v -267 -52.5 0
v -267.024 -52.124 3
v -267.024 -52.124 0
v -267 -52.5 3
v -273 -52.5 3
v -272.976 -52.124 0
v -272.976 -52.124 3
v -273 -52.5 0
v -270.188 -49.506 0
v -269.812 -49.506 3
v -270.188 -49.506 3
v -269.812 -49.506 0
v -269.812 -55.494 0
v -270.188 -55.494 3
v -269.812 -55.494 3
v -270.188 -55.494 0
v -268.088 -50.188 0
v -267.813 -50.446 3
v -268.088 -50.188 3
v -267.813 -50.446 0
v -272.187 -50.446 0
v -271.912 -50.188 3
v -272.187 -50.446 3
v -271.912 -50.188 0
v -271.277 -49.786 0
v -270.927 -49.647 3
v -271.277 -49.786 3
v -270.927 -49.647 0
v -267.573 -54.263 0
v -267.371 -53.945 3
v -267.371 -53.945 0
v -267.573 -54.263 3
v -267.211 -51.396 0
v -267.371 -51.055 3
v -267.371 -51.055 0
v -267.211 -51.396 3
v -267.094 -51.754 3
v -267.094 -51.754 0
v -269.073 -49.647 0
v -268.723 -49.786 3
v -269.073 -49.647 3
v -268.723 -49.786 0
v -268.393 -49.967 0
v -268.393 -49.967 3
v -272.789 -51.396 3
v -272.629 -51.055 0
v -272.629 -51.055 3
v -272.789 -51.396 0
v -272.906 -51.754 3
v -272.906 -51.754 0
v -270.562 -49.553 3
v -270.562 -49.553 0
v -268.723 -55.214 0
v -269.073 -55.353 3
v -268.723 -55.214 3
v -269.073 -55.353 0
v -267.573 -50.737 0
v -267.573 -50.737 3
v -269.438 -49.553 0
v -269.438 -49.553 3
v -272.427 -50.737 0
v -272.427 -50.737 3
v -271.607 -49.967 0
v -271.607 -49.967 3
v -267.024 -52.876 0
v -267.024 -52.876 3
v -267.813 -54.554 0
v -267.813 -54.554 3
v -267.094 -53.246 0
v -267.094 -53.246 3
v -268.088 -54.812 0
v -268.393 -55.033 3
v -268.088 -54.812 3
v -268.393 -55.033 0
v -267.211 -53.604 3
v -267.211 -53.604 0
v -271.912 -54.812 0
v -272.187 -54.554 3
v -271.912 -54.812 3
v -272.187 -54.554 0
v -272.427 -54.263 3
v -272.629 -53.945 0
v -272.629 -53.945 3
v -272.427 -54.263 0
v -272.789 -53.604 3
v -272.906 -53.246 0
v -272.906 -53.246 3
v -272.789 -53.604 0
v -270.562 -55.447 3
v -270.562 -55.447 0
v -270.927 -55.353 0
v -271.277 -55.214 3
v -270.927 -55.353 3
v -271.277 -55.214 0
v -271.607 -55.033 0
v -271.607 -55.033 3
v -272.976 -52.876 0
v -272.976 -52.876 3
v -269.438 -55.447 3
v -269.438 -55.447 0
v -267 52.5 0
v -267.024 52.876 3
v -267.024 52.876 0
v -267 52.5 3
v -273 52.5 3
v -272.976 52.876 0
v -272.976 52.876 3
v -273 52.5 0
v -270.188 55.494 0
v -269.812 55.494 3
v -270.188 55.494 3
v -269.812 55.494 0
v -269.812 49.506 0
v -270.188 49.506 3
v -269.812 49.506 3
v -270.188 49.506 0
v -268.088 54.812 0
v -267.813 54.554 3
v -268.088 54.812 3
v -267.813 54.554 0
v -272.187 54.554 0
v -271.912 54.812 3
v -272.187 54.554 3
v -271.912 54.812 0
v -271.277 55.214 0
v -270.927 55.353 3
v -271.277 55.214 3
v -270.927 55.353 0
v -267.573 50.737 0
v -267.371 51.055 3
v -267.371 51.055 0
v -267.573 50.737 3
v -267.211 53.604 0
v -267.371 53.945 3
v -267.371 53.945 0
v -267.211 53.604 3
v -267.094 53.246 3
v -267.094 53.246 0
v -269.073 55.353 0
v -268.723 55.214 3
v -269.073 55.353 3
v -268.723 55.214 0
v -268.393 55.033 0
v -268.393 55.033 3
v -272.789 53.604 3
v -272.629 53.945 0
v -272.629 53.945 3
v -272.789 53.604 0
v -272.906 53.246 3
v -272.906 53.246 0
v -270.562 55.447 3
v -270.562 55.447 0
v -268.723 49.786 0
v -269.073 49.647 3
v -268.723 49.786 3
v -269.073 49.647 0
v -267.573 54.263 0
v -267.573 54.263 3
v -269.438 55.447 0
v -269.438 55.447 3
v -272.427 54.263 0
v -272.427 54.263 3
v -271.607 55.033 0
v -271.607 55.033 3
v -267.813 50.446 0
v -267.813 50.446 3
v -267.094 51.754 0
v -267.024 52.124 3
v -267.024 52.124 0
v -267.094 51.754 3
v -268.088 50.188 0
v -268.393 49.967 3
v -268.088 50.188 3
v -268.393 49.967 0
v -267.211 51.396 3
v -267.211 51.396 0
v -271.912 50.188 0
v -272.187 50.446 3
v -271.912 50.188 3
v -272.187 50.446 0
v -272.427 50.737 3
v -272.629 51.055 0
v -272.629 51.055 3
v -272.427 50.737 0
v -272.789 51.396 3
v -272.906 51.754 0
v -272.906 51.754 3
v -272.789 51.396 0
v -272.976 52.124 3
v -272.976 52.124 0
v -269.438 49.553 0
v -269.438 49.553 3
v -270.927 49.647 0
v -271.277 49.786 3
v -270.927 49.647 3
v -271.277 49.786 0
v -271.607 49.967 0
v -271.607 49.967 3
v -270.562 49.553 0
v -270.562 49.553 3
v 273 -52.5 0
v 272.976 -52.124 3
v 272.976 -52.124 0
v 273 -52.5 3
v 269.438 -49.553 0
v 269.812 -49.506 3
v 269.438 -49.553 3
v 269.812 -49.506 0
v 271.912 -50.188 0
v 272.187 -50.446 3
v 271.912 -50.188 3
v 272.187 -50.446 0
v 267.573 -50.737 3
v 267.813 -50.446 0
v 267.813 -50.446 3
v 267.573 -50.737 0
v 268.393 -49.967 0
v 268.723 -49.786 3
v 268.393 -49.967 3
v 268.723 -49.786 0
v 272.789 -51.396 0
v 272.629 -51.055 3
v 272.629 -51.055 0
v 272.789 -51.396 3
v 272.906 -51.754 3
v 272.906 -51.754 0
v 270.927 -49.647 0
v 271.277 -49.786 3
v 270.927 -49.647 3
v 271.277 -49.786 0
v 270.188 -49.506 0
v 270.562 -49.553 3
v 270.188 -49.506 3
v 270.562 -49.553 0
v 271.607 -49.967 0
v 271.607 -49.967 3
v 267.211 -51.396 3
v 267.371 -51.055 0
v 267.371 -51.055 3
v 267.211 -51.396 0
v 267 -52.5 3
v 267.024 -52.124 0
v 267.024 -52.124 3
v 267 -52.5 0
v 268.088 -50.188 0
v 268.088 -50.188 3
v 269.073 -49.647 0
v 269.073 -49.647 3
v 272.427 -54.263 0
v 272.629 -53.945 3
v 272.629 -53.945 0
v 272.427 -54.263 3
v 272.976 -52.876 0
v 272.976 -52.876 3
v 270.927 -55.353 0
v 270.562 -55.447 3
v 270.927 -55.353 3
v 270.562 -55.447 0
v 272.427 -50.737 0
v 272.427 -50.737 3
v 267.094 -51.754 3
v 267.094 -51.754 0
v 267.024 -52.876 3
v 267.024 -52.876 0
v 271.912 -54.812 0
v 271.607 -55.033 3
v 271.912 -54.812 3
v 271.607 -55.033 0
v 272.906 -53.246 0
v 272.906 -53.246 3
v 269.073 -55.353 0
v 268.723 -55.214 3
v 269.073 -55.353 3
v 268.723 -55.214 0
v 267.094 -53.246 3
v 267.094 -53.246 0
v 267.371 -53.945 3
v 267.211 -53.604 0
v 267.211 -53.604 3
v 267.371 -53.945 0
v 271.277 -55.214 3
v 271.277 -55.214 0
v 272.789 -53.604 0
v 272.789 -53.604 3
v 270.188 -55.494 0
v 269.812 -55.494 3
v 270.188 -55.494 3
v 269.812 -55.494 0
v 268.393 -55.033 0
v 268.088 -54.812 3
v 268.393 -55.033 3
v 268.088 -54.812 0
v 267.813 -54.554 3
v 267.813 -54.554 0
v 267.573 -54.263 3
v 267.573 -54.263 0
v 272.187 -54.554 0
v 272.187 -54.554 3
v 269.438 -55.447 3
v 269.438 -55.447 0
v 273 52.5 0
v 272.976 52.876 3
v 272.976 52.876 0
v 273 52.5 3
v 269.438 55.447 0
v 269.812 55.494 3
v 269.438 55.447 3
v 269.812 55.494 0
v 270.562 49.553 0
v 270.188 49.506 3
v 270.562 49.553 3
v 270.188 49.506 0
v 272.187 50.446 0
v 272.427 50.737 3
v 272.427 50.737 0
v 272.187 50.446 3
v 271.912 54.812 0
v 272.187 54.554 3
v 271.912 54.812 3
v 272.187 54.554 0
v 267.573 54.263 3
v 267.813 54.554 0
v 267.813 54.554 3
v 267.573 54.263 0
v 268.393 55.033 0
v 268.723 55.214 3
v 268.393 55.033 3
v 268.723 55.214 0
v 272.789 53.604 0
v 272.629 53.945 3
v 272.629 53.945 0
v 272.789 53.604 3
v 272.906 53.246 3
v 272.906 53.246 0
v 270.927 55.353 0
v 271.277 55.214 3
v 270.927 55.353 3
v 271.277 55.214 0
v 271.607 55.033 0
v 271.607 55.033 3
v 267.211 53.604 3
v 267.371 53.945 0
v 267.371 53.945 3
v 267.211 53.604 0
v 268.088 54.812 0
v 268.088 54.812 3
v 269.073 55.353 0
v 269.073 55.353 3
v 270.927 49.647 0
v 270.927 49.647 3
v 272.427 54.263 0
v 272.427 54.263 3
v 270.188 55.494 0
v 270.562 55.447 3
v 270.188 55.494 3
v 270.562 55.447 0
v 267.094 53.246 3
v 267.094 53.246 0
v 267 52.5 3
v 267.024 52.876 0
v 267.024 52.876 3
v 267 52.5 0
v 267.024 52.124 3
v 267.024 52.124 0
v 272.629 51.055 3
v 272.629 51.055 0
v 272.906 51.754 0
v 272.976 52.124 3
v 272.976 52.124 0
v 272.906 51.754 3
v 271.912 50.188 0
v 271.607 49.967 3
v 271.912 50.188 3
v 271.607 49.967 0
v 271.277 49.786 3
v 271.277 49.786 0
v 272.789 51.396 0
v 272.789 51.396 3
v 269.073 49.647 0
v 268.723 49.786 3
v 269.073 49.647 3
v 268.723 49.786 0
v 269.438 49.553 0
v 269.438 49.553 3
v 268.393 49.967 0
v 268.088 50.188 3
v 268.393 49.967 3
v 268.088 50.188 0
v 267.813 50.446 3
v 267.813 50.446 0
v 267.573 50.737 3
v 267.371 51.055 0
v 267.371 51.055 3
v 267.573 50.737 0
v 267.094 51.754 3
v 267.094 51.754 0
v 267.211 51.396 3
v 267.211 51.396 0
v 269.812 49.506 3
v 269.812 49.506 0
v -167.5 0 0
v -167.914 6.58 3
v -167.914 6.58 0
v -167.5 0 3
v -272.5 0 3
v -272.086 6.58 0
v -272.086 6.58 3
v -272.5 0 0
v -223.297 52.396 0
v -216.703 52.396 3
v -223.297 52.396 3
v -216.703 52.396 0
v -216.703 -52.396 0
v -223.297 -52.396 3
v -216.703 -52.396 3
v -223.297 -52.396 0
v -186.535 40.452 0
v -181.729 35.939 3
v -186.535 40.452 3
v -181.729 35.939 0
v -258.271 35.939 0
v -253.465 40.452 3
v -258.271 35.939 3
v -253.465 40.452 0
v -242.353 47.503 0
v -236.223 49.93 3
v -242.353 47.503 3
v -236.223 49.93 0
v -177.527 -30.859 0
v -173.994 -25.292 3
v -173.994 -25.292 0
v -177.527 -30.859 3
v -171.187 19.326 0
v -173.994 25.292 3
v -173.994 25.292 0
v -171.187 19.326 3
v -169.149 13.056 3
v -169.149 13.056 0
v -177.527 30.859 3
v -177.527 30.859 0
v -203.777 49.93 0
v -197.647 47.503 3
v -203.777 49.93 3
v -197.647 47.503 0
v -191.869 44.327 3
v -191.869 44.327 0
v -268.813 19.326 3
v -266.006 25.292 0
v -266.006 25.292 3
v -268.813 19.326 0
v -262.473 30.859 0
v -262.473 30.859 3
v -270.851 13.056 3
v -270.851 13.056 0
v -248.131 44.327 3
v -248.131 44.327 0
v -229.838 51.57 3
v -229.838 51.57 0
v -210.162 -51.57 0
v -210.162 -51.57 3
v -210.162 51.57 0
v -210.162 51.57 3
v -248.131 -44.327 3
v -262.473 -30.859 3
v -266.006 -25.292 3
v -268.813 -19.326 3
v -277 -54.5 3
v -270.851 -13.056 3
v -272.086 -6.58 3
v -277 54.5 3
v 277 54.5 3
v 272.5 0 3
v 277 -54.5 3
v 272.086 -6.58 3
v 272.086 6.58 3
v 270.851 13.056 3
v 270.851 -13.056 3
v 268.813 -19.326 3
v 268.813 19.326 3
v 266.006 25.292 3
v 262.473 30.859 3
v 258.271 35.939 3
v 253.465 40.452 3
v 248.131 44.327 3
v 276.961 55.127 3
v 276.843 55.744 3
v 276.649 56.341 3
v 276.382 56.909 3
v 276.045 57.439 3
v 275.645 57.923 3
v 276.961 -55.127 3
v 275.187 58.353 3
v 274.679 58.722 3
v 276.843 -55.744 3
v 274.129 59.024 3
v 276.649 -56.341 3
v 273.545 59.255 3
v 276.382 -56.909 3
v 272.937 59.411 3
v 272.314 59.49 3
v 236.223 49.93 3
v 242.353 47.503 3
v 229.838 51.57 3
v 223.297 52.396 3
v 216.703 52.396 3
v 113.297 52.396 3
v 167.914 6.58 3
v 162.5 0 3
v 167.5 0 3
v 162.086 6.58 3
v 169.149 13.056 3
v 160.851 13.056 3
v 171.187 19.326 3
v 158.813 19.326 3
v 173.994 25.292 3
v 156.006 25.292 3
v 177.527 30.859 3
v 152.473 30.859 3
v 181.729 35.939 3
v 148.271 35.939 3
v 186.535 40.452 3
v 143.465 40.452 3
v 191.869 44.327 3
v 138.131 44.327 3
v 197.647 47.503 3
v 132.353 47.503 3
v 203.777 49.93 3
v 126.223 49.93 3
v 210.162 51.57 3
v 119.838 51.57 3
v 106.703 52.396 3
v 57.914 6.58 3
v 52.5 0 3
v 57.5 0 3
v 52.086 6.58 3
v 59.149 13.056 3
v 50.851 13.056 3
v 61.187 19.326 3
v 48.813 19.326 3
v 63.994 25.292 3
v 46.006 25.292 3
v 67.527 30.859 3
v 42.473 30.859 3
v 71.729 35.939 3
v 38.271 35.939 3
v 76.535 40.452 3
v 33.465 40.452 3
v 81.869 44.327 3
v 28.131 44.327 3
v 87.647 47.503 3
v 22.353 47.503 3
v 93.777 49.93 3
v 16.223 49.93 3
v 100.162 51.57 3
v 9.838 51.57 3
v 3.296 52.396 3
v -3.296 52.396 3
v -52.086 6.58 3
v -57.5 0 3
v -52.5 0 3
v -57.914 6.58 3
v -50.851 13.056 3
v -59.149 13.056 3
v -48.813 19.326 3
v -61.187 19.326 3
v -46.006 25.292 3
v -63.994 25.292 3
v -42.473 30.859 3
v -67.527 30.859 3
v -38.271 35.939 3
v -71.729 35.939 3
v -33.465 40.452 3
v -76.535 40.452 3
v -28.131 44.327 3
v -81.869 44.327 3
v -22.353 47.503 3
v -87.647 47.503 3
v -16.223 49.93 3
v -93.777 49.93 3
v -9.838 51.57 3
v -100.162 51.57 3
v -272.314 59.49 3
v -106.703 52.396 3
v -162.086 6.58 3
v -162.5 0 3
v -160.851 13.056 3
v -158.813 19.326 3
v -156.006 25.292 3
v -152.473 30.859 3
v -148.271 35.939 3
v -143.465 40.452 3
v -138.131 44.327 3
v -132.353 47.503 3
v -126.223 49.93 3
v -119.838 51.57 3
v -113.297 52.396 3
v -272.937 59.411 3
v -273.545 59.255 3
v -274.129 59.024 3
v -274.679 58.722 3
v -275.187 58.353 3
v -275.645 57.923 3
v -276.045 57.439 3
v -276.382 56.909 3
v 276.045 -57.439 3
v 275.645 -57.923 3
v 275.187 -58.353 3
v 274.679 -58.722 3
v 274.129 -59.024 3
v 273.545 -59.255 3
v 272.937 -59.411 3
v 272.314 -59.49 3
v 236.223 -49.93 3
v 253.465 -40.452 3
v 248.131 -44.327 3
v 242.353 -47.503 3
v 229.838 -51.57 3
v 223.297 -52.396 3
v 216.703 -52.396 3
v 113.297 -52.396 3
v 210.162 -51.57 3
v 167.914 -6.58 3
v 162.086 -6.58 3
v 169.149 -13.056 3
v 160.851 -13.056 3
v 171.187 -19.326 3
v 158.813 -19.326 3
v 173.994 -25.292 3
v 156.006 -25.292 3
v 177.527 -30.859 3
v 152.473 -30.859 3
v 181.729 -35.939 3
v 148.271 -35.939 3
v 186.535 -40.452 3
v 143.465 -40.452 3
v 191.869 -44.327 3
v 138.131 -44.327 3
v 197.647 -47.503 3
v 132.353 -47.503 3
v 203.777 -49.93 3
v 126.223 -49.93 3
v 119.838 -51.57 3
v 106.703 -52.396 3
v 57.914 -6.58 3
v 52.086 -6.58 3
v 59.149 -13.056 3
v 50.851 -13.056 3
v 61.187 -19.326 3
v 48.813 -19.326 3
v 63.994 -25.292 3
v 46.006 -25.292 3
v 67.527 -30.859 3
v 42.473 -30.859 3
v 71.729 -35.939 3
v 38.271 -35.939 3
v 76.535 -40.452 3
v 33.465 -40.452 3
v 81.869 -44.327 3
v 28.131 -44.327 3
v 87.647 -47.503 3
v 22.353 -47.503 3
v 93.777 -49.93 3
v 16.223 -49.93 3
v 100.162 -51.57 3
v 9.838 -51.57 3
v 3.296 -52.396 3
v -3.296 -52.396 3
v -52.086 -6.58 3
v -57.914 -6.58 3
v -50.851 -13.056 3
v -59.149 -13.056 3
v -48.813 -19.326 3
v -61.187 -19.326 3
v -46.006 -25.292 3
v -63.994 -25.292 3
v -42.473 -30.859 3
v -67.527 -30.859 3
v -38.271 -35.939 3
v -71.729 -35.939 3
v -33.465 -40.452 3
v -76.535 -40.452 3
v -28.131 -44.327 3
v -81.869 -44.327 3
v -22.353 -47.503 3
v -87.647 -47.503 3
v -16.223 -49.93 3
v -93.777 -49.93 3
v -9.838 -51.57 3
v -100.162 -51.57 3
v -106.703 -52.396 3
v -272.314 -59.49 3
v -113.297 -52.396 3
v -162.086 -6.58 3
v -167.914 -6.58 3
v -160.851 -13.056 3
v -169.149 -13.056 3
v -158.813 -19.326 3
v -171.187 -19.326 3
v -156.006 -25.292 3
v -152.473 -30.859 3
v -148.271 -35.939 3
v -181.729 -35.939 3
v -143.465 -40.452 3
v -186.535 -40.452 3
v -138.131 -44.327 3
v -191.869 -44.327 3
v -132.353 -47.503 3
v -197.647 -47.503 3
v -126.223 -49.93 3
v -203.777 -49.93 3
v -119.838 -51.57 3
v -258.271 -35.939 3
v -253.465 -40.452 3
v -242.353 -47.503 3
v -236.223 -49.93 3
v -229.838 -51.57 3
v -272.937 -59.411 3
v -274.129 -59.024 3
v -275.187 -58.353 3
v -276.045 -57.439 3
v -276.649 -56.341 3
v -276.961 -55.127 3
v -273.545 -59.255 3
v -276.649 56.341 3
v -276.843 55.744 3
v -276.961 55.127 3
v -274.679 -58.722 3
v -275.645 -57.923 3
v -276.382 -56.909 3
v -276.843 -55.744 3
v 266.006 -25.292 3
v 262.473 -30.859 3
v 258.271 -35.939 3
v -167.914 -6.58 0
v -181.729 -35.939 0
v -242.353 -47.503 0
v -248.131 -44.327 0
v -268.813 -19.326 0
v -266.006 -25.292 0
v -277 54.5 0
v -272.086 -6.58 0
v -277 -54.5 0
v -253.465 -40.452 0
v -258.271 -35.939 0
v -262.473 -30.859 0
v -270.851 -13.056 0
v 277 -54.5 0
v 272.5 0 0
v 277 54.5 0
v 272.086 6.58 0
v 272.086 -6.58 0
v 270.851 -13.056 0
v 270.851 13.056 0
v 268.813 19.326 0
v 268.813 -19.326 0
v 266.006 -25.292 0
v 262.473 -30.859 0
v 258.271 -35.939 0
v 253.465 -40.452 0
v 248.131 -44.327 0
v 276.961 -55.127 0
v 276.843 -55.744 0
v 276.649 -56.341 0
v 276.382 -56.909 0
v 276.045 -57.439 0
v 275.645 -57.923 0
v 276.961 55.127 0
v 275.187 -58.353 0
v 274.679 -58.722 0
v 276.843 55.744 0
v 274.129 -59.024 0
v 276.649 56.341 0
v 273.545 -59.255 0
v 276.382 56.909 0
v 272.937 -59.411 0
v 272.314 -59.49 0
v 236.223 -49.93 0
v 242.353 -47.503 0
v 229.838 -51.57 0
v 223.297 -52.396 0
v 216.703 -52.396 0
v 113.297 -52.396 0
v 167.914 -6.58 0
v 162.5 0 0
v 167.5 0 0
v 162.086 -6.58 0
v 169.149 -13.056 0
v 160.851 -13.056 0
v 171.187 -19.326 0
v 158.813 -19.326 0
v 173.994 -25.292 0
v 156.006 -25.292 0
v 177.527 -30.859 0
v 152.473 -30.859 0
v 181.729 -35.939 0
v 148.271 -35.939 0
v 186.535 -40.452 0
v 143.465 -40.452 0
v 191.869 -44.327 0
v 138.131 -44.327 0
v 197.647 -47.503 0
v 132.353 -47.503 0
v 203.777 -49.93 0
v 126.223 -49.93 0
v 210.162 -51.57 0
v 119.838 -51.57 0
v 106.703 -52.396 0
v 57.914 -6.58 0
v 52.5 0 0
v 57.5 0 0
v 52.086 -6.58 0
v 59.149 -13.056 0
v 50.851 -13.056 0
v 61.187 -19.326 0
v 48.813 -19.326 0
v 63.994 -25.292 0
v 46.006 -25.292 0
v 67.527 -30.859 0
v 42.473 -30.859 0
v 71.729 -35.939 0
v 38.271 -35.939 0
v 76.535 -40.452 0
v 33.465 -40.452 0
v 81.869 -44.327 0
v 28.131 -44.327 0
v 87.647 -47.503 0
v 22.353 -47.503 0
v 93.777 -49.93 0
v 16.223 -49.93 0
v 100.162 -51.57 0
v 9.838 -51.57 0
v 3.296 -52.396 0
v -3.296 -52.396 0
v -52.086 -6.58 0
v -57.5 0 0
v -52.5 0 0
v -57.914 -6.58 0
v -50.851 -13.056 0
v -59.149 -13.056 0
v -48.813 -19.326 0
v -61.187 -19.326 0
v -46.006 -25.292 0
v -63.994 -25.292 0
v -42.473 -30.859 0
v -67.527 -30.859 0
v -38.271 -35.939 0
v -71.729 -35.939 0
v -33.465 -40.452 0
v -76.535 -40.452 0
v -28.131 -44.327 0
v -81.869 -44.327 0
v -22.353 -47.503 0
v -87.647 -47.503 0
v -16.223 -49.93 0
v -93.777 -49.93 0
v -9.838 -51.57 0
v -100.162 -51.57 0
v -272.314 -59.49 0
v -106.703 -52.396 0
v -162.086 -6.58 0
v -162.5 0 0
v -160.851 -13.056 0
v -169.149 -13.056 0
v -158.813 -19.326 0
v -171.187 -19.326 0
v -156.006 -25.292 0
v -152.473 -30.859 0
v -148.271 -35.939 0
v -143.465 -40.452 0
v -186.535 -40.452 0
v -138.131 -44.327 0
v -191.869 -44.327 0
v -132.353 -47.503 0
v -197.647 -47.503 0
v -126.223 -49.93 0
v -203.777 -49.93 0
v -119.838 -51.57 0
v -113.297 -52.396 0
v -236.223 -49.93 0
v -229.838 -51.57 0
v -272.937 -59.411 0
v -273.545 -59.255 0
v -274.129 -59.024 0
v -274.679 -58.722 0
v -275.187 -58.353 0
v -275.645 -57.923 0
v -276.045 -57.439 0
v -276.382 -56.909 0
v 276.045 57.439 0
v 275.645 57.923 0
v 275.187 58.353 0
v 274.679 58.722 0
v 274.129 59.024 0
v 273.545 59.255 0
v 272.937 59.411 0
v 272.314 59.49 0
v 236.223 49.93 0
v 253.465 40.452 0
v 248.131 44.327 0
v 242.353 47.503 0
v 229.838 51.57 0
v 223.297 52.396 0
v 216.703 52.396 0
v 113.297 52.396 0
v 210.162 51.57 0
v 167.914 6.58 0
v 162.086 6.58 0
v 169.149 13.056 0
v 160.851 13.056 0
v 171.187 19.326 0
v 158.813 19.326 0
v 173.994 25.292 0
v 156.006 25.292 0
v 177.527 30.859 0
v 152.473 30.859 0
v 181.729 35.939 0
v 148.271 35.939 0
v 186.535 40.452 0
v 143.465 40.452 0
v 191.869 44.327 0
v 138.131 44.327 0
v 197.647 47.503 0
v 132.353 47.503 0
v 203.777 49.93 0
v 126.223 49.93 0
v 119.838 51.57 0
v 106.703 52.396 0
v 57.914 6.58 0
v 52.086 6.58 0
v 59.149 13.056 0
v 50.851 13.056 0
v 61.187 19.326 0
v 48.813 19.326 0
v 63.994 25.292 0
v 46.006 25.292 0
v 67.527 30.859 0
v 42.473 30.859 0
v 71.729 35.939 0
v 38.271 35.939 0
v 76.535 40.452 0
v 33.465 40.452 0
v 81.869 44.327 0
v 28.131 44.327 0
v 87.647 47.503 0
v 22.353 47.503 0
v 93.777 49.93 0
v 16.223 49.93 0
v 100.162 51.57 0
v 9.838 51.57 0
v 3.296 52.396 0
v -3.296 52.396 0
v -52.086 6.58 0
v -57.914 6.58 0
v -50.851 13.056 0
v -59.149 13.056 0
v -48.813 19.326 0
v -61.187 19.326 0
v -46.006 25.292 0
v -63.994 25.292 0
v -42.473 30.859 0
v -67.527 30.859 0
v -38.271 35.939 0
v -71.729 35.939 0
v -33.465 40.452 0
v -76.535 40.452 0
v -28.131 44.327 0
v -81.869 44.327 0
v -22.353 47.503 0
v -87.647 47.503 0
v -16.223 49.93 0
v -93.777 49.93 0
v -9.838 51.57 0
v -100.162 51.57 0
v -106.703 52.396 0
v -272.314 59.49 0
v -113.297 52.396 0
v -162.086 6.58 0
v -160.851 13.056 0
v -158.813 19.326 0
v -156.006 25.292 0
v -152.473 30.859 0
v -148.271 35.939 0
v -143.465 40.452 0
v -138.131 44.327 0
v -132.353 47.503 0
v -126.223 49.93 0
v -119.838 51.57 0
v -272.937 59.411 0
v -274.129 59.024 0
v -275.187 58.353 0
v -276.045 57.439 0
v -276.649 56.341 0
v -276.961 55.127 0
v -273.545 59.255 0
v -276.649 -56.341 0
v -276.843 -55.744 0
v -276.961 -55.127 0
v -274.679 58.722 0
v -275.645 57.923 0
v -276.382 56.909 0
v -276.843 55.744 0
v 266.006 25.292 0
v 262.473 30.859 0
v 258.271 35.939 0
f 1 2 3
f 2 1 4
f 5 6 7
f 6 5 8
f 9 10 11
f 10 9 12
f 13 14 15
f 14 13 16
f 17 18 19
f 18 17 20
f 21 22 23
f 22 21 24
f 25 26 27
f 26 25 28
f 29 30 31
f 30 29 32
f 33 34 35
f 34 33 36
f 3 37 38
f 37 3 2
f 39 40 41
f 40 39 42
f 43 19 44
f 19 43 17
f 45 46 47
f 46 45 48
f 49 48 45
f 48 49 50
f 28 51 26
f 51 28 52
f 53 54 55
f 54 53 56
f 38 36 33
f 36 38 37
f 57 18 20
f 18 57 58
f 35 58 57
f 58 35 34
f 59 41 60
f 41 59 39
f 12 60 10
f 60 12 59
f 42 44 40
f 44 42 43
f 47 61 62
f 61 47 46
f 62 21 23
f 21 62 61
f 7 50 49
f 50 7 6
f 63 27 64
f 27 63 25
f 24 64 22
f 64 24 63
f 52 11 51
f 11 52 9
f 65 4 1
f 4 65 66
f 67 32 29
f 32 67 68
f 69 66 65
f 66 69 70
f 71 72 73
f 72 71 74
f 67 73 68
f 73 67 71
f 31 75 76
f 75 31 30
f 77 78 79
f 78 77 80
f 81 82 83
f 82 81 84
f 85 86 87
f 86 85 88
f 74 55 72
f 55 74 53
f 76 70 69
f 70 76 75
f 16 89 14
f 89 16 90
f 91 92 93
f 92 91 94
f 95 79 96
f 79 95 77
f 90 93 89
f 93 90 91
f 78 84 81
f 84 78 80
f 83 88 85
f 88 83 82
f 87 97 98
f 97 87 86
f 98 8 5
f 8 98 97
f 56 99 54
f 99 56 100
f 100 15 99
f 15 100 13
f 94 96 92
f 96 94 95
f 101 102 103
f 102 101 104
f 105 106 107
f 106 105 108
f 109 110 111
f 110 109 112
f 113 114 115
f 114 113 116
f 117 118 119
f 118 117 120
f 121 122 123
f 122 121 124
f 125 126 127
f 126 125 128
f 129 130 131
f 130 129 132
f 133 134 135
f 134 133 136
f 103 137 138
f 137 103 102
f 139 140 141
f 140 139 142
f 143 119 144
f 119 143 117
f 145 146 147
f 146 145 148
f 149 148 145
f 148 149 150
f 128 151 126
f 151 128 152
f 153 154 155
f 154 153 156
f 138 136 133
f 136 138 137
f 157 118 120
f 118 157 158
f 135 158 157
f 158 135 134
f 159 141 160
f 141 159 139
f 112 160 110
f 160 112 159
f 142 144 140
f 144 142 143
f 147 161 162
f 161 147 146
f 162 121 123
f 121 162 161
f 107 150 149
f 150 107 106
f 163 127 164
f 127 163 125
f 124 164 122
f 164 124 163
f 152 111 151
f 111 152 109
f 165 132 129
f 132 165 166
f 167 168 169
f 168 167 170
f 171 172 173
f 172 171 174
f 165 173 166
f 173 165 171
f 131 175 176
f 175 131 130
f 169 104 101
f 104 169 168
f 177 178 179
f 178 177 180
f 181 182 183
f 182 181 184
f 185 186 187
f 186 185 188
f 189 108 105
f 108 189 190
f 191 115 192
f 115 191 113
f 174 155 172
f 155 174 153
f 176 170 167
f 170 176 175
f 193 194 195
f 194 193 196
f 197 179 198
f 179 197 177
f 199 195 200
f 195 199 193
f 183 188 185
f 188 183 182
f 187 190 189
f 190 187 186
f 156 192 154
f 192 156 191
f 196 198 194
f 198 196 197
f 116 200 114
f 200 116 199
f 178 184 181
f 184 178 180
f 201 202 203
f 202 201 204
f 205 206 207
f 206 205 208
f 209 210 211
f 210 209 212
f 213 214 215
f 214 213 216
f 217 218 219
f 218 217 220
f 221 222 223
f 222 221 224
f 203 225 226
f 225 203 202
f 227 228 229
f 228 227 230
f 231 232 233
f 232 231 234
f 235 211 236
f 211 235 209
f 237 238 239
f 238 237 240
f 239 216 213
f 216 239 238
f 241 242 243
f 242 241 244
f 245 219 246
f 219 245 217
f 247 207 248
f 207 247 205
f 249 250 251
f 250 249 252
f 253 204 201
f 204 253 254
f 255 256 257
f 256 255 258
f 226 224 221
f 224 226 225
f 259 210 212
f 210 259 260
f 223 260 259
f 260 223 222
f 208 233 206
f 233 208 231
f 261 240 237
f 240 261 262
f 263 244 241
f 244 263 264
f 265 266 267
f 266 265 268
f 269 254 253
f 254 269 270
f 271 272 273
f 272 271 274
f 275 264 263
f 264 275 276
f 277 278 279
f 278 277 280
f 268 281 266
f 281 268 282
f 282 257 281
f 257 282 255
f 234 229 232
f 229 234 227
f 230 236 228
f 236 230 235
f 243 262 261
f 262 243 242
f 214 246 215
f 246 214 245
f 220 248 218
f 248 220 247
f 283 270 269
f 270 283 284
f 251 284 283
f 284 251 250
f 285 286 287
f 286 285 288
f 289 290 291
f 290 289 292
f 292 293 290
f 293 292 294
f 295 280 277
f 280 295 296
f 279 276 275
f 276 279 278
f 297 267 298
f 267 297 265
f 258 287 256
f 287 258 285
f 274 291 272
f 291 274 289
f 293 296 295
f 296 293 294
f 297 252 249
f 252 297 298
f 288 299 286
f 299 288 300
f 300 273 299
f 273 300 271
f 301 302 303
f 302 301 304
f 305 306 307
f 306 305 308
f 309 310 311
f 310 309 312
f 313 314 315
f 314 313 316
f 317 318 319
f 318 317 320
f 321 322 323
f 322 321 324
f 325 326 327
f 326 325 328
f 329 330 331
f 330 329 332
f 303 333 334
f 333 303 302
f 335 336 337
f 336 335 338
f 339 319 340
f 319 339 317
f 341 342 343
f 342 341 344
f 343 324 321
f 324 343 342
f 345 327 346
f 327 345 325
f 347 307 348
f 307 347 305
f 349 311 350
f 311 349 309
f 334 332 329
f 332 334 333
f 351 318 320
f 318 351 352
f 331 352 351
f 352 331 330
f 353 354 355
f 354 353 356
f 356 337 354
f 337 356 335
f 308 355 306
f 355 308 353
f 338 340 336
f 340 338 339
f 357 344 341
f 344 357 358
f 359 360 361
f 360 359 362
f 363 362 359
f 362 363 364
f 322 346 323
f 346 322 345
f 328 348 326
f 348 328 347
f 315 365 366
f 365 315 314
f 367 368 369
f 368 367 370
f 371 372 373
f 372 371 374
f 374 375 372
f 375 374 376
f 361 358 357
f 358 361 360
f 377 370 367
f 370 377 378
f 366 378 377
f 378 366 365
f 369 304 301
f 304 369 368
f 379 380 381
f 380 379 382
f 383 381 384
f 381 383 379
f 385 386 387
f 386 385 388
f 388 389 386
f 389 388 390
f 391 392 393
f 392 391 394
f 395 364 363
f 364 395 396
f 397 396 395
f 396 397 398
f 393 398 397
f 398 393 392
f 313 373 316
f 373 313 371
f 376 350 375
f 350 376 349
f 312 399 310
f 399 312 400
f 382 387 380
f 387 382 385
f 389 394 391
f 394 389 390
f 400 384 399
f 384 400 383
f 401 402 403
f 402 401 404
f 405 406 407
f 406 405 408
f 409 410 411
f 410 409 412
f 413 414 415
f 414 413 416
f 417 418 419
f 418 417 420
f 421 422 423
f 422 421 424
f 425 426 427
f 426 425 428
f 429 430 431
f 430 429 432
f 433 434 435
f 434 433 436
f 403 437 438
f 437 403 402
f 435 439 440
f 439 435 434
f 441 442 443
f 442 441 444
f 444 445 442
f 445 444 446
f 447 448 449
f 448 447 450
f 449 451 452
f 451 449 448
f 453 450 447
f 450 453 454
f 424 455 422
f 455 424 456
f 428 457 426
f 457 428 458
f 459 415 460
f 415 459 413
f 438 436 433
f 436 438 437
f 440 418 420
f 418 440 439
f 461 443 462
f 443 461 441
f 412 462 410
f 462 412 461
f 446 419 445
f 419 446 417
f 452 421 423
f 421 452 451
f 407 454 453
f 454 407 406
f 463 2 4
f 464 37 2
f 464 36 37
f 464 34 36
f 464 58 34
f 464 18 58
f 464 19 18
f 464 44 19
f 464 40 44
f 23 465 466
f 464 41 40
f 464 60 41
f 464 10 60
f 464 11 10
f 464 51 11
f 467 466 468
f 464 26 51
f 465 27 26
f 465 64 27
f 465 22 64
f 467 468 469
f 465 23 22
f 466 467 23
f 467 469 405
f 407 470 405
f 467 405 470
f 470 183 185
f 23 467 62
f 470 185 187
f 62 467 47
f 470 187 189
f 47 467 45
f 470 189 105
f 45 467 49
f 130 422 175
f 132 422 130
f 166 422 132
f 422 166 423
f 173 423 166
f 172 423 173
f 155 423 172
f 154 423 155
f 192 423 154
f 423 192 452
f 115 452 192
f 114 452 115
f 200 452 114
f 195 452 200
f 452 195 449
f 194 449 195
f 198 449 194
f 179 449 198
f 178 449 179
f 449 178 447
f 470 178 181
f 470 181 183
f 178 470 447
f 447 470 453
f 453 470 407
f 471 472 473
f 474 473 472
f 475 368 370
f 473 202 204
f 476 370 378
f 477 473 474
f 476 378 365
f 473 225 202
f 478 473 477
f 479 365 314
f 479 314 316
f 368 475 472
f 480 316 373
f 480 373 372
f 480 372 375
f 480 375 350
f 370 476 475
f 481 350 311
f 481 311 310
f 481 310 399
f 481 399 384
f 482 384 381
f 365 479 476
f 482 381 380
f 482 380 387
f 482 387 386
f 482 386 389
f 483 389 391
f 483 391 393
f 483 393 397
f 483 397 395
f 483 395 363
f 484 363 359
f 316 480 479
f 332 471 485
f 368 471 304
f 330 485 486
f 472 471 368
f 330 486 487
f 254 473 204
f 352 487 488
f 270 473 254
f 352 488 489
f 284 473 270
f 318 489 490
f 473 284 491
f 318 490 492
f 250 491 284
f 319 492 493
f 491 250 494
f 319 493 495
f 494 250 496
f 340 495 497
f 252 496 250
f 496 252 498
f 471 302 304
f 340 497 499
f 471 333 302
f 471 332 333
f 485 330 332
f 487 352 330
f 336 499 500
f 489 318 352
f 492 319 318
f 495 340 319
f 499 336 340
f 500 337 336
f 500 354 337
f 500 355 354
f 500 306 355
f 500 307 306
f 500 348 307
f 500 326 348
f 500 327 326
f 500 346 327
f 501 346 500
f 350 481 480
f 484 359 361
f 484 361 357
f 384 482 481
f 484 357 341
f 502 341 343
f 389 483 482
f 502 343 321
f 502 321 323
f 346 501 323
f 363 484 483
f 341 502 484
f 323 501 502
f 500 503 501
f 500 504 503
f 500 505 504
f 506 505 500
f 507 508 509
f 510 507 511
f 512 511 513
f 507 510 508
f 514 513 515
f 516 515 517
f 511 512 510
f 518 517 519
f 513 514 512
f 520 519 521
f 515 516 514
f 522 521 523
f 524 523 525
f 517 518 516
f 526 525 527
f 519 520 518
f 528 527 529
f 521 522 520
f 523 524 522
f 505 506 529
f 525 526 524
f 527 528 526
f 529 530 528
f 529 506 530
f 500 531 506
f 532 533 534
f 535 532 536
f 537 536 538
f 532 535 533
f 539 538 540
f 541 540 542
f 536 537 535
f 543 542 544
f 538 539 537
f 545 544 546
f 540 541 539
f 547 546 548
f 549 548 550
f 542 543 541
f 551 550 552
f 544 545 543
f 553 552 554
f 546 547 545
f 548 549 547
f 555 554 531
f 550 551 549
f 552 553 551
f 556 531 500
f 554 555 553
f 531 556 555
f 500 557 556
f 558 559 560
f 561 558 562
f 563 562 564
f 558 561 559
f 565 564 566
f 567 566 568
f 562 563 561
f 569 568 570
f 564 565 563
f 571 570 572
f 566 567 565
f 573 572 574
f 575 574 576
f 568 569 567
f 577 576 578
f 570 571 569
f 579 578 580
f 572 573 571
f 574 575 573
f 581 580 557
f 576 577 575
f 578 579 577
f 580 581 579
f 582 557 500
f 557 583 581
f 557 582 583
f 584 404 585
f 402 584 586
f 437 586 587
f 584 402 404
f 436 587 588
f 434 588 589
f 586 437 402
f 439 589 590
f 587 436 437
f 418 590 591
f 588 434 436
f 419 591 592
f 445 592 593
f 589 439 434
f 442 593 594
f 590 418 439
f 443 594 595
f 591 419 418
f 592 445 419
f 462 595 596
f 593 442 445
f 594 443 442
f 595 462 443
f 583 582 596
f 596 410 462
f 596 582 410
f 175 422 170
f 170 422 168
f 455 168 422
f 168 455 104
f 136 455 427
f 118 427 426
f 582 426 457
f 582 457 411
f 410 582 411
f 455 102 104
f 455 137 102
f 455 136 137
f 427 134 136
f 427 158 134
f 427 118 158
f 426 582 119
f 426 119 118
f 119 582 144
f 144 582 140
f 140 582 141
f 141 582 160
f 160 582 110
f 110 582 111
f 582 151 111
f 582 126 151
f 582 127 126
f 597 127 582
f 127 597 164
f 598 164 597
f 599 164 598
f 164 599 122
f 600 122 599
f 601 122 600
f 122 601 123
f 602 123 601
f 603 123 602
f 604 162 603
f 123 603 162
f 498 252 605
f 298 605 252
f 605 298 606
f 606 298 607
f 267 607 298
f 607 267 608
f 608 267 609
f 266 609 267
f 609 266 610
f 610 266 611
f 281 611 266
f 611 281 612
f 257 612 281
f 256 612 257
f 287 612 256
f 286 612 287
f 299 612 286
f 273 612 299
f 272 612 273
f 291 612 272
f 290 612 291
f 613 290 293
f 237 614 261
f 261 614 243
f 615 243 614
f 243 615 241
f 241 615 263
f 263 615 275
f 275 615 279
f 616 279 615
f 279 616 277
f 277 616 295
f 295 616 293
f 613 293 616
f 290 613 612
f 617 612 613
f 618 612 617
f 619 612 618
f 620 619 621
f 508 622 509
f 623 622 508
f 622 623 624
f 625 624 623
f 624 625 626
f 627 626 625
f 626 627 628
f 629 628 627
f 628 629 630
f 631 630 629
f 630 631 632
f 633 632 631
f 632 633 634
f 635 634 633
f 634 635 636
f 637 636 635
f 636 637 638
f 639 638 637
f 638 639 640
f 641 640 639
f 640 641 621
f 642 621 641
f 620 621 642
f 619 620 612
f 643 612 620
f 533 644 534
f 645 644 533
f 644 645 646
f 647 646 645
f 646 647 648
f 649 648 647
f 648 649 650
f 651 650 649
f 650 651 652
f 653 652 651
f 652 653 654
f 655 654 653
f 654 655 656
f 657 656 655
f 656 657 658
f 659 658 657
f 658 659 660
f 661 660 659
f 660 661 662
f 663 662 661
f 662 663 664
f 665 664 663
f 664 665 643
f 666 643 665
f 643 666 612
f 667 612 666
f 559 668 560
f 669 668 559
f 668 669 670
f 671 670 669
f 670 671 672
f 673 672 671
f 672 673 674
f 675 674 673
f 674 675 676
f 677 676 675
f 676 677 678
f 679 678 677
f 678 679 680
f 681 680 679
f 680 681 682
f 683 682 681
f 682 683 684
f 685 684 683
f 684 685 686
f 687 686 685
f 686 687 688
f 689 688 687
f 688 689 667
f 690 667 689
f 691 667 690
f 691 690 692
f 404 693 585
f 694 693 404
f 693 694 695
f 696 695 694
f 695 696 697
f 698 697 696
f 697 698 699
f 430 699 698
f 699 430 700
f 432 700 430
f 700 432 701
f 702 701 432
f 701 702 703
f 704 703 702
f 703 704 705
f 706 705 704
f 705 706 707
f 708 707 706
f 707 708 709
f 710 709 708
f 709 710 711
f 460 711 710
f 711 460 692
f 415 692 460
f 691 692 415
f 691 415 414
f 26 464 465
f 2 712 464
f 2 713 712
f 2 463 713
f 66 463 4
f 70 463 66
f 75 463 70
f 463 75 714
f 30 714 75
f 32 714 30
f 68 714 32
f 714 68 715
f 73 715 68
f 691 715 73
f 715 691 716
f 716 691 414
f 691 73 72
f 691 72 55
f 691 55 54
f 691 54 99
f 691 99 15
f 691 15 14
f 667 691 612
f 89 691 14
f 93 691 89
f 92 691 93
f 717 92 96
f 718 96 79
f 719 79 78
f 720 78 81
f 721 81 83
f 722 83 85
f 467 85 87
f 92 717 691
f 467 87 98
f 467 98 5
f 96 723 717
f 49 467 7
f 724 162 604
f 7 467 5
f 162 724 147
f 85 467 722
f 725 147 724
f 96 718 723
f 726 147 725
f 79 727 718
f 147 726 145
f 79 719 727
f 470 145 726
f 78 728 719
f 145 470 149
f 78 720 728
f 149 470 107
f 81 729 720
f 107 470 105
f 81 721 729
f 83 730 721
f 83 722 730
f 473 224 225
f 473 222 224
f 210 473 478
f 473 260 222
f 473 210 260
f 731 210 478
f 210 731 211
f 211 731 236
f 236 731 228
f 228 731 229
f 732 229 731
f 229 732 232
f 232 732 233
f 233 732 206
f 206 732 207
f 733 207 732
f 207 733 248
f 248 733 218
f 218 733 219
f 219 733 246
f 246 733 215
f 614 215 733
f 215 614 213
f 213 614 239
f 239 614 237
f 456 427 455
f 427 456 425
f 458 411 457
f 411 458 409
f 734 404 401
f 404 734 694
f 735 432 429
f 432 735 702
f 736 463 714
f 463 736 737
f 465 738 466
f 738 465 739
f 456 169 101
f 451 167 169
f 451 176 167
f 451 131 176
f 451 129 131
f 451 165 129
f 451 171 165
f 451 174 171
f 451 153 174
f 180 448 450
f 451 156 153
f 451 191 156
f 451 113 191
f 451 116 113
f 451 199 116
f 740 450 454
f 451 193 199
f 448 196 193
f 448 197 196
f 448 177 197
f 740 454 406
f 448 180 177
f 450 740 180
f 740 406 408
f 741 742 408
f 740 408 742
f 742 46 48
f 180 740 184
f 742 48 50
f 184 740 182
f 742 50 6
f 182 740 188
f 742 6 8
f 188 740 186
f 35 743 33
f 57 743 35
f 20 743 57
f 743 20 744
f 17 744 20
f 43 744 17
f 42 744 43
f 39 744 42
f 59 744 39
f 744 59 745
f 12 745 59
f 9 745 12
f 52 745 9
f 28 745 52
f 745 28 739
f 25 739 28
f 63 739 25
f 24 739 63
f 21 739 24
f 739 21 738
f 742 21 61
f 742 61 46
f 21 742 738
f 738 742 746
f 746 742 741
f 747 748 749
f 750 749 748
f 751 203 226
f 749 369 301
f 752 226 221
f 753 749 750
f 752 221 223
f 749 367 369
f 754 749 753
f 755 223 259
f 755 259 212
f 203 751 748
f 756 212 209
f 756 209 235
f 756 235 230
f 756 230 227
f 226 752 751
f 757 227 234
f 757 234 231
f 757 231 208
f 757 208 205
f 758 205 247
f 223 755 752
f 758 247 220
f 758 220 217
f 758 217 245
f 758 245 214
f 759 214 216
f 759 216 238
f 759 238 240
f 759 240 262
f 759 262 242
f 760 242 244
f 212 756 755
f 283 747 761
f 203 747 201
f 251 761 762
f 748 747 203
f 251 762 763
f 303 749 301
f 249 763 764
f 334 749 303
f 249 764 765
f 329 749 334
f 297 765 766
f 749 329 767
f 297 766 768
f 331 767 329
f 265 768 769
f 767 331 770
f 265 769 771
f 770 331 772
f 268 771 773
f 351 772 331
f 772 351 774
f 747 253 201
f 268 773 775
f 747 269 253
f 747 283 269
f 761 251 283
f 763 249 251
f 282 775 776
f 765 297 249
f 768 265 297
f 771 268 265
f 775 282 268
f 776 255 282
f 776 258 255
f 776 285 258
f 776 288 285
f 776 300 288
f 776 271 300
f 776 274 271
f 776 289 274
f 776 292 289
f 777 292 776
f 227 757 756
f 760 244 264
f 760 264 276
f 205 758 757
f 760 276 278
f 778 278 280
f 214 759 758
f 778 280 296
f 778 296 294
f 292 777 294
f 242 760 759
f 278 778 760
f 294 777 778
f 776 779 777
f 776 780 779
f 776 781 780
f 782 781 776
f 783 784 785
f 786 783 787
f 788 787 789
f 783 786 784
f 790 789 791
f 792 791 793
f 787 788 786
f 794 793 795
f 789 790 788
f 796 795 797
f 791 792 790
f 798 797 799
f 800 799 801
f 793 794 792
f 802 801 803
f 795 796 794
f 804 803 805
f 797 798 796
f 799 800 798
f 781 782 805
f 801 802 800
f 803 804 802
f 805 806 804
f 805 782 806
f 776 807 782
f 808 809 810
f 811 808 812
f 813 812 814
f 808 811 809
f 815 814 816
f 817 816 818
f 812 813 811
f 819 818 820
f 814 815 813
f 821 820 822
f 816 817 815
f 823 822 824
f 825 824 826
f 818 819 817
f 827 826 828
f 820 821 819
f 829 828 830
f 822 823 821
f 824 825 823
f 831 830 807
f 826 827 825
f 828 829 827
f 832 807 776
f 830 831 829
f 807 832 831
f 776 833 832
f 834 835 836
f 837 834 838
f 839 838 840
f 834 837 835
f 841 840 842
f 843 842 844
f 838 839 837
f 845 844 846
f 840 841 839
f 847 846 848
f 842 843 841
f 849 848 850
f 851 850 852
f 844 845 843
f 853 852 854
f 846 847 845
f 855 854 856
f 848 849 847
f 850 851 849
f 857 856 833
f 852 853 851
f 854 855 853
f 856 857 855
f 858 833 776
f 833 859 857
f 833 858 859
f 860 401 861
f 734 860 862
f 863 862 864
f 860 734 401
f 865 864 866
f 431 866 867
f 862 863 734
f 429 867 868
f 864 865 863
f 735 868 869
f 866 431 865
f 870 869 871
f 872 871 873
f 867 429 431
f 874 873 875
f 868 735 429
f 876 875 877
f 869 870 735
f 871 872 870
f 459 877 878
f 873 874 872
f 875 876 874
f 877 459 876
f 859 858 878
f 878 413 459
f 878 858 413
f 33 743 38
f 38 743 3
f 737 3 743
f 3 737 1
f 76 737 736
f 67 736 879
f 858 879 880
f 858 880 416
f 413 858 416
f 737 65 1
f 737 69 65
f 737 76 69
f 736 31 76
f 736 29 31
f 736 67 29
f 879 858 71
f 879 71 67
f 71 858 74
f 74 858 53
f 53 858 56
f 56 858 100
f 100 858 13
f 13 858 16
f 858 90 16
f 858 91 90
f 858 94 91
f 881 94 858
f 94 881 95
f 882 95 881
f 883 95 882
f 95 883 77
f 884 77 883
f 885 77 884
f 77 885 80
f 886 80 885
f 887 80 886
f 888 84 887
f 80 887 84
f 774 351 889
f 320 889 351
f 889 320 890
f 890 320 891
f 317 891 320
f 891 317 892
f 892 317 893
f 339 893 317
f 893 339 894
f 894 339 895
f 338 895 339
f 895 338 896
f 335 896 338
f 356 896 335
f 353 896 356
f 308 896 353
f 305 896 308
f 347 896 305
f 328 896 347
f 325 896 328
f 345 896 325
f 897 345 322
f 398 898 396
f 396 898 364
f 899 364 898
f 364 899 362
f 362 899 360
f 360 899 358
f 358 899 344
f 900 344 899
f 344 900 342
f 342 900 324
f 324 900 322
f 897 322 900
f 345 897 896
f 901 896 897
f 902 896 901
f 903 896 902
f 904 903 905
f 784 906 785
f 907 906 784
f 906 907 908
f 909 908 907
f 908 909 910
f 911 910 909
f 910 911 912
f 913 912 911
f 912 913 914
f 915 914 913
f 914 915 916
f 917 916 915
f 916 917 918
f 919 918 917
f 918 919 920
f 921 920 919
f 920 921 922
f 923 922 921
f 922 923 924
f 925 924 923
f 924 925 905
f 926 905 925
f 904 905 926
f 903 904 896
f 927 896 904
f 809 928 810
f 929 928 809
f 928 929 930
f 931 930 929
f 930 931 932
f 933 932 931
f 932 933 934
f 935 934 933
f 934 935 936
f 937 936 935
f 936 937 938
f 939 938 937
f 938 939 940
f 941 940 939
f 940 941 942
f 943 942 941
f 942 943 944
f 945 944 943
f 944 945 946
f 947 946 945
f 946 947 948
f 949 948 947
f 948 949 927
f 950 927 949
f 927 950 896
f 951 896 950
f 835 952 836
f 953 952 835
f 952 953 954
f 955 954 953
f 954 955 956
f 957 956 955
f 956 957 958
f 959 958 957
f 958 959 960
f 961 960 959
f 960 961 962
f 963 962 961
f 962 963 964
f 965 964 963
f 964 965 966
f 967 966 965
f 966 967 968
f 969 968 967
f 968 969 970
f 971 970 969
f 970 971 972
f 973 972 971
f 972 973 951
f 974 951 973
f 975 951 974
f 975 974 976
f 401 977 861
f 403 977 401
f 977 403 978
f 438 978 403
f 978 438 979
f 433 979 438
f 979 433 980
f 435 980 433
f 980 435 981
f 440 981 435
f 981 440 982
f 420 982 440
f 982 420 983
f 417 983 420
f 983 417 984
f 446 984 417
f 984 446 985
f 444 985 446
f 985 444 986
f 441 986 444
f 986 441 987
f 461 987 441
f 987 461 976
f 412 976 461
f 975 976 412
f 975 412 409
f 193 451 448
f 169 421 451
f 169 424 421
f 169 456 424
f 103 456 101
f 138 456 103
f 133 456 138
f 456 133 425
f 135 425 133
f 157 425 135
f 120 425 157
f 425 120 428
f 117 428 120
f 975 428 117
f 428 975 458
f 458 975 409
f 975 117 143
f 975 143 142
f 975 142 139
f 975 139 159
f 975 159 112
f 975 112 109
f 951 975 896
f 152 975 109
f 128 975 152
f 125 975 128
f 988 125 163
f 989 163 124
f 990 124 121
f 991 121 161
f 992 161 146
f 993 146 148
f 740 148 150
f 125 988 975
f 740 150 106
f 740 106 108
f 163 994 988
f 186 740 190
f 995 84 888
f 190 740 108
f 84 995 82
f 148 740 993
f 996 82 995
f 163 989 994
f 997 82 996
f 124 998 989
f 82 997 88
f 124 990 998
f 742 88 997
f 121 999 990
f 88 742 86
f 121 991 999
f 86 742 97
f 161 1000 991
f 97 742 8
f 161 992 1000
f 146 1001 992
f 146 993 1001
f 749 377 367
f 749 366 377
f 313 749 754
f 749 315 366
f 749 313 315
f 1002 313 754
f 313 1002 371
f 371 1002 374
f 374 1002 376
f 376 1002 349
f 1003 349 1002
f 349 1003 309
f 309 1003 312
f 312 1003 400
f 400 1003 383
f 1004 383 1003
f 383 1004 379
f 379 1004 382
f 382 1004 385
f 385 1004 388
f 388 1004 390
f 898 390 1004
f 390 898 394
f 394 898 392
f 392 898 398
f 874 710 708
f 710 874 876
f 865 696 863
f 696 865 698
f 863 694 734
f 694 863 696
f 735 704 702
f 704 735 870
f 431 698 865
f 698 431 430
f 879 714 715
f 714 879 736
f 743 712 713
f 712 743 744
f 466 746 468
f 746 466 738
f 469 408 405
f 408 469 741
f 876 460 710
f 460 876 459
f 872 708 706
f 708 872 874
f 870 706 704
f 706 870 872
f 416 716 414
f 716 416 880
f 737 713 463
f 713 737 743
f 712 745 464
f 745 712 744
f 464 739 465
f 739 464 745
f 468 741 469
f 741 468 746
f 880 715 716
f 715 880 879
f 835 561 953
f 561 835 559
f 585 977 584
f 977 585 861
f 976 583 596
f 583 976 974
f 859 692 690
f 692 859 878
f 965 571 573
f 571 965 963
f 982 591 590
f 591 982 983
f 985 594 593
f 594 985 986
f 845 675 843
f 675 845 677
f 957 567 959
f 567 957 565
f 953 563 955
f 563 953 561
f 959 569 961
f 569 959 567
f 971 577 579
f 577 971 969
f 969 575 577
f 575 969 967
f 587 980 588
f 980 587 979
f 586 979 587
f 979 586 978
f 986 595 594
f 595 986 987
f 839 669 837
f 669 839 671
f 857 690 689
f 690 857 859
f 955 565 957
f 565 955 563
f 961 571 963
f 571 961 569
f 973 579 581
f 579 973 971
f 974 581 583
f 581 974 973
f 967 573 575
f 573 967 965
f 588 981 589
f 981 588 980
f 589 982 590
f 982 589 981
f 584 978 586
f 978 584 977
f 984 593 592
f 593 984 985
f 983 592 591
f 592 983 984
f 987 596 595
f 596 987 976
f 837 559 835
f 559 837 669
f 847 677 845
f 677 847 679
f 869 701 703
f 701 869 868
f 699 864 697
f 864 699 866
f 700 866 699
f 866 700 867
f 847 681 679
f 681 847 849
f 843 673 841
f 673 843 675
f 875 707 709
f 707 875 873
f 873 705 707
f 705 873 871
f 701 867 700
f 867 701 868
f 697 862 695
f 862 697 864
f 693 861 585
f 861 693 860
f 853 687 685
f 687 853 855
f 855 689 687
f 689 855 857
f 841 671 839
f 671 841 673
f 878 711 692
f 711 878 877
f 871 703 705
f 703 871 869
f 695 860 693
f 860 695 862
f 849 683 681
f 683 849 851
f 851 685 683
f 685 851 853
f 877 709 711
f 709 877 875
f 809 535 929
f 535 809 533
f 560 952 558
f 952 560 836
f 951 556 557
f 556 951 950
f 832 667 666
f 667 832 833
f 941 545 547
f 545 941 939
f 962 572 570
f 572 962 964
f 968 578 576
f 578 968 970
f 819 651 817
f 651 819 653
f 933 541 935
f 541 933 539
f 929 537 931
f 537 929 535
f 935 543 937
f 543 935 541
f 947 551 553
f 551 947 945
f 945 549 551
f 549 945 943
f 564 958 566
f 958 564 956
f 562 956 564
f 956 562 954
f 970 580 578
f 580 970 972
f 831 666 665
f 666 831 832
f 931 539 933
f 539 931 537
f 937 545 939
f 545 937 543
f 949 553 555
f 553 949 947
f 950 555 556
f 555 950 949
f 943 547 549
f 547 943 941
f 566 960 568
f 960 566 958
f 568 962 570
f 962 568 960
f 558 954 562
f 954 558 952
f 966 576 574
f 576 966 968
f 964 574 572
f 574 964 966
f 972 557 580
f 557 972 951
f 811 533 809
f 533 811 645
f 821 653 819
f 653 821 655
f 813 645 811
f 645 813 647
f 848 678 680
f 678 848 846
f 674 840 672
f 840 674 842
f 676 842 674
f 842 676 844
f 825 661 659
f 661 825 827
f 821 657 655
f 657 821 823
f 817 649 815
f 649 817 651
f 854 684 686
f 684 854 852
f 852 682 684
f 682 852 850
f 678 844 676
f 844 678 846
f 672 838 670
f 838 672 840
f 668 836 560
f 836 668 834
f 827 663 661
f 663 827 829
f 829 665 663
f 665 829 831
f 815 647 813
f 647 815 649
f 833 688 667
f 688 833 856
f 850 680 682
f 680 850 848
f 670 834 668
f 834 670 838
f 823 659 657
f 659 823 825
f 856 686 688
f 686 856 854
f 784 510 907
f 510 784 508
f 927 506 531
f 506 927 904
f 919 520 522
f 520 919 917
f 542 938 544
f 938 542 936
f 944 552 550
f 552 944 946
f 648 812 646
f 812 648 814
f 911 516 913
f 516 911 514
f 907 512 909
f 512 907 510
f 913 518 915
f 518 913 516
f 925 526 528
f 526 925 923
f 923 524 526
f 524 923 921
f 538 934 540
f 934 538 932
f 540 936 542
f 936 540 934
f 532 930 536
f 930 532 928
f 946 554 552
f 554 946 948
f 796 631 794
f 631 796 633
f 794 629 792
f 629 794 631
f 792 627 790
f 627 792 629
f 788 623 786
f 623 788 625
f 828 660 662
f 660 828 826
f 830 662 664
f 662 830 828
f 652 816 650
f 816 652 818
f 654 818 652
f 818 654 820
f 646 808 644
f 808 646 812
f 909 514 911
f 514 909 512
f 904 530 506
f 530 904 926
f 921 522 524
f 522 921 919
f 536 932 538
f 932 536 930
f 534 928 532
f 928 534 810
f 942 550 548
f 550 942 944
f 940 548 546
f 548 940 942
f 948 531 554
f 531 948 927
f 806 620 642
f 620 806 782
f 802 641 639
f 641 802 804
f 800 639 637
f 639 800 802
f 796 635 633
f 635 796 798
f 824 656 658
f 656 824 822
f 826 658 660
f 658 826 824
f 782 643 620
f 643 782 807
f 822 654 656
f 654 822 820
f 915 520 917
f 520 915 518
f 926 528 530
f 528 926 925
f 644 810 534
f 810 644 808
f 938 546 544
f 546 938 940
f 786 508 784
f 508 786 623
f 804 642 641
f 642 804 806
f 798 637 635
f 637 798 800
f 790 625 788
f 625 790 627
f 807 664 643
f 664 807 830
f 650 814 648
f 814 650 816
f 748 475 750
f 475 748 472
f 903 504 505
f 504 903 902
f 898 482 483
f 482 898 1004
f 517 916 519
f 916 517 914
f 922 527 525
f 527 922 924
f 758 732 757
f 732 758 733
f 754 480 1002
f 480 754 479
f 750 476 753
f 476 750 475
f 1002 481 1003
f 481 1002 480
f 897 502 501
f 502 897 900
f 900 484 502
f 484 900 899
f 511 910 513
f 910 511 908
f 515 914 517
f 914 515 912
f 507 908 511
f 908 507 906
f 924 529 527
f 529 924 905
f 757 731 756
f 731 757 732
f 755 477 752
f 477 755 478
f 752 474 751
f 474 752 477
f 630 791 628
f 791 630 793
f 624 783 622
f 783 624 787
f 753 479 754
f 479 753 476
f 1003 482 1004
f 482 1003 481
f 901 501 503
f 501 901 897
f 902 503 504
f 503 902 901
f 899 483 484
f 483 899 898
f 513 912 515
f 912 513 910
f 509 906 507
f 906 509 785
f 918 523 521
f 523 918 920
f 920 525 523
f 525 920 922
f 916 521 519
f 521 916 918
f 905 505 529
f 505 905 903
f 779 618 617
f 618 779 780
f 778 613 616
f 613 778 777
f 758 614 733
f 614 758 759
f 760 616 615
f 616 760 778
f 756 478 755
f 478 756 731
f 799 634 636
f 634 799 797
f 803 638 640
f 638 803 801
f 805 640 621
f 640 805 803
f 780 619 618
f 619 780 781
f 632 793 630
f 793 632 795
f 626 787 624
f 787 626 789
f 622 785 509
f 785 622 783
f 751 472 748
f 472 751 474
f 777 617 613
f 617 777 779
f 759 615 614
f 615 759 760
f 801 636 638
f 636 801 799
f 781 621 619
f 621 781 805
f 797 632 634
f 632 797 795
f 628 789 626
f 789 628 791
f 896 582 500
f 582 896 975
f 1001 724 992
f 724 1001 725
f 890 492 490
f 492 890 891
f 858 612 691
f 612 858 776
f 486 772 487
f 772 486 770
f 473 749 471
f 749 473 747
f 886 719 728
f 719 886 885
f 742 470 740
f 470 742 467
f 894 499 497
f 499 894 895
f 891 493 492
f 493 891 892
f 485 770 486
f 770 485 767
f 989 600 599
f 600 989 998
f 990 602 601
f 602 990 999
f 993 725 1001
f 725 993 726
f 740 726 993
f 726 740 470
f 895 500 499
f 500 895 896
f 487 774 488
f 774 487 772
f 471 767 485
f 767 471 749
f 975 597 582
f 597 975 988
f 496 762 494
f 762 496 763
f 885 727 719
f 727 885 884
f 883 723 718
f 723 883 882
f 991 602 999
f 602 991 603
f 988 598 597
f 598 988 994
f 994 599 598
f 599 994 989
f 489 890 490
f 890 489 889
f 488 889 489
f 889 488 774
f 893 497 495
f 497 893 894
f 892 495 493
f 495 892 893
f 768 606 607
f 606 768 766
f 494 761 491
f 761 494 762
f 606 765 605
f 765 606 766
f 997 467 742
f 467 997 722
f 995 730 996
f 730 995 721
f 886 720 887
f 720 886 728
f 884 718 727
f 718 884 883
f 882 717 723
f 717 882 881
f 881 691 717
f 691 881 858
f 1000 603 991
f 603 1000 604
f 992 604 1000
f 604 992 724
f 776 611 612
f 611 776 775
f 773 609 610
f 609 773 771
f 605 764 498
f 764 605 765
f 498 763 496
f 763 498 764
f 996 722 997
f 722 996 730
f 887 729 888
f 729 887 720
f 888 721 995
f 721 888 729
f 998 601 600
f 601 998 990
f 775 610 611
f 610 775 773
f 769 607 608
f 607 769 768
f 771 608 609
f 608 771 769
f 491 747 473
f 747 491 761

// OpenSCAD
$fn = 50;


difference() {
	union() {
		hull() {
			translate(v = [-272.0000000000, 54.5000000000, 0]) {
				cylinder(h = 3, r = 5);
			}
			translate(v = [272.0000000000, 54.5000000000, 0]) {
				cylinder(h = 3, r = 5);
			}
			translate(v = [-272.0000000000, -54.5000000000, 0]) {
				cylinder(h = 3, r = 5);
			}
			translate(v = [272.0000000000, -54.5000000000, 0]) {
				cylinder(h = 3, r = 5);
			}
		}
	}
	union() {
		#translate(v = [-270.0000000000, -52.5000000000, -100.0000000000]) {
			cylinder(h = 200, r = 3.0000000000);
		}
		#translate(v = [-270.0000000000, 52.5000000000, -100.0000000000]) {
			cylinder(h = 200, r = 3.0000000000);
		}
		#translate(v = [270.0000000000, -52.5000000000, -100.0000000000]) {
			cylinder(h = 200, r = 3.0000000000);
		}
		#translate(v = [270.0000000000, 52.5000000000, -100.0000000000]) {
			cylinder(h = 200, r = 3.0000000000);
		}
		#translate(v = [-220.0000000000, 0, 0]) {
			cylinder(h = 3, r = 52.5000000000);
		}
		#translate(v = [-110.0000000000, 0, 0]) {
			cylinder(h = 3, r = 52.5000000000);
		}
		#cylinder(h = 3, r = 52.5000000000);
		#translate(v = [110.0000000000, 0, 0]) {
			cylinder(h = 3, r = 52.5000000000);
		}
		#translate(v = [220.0000000000, 0, 0]) {
			cylinder(h = 3, r = 52.5000000000);
		}
	}
}
